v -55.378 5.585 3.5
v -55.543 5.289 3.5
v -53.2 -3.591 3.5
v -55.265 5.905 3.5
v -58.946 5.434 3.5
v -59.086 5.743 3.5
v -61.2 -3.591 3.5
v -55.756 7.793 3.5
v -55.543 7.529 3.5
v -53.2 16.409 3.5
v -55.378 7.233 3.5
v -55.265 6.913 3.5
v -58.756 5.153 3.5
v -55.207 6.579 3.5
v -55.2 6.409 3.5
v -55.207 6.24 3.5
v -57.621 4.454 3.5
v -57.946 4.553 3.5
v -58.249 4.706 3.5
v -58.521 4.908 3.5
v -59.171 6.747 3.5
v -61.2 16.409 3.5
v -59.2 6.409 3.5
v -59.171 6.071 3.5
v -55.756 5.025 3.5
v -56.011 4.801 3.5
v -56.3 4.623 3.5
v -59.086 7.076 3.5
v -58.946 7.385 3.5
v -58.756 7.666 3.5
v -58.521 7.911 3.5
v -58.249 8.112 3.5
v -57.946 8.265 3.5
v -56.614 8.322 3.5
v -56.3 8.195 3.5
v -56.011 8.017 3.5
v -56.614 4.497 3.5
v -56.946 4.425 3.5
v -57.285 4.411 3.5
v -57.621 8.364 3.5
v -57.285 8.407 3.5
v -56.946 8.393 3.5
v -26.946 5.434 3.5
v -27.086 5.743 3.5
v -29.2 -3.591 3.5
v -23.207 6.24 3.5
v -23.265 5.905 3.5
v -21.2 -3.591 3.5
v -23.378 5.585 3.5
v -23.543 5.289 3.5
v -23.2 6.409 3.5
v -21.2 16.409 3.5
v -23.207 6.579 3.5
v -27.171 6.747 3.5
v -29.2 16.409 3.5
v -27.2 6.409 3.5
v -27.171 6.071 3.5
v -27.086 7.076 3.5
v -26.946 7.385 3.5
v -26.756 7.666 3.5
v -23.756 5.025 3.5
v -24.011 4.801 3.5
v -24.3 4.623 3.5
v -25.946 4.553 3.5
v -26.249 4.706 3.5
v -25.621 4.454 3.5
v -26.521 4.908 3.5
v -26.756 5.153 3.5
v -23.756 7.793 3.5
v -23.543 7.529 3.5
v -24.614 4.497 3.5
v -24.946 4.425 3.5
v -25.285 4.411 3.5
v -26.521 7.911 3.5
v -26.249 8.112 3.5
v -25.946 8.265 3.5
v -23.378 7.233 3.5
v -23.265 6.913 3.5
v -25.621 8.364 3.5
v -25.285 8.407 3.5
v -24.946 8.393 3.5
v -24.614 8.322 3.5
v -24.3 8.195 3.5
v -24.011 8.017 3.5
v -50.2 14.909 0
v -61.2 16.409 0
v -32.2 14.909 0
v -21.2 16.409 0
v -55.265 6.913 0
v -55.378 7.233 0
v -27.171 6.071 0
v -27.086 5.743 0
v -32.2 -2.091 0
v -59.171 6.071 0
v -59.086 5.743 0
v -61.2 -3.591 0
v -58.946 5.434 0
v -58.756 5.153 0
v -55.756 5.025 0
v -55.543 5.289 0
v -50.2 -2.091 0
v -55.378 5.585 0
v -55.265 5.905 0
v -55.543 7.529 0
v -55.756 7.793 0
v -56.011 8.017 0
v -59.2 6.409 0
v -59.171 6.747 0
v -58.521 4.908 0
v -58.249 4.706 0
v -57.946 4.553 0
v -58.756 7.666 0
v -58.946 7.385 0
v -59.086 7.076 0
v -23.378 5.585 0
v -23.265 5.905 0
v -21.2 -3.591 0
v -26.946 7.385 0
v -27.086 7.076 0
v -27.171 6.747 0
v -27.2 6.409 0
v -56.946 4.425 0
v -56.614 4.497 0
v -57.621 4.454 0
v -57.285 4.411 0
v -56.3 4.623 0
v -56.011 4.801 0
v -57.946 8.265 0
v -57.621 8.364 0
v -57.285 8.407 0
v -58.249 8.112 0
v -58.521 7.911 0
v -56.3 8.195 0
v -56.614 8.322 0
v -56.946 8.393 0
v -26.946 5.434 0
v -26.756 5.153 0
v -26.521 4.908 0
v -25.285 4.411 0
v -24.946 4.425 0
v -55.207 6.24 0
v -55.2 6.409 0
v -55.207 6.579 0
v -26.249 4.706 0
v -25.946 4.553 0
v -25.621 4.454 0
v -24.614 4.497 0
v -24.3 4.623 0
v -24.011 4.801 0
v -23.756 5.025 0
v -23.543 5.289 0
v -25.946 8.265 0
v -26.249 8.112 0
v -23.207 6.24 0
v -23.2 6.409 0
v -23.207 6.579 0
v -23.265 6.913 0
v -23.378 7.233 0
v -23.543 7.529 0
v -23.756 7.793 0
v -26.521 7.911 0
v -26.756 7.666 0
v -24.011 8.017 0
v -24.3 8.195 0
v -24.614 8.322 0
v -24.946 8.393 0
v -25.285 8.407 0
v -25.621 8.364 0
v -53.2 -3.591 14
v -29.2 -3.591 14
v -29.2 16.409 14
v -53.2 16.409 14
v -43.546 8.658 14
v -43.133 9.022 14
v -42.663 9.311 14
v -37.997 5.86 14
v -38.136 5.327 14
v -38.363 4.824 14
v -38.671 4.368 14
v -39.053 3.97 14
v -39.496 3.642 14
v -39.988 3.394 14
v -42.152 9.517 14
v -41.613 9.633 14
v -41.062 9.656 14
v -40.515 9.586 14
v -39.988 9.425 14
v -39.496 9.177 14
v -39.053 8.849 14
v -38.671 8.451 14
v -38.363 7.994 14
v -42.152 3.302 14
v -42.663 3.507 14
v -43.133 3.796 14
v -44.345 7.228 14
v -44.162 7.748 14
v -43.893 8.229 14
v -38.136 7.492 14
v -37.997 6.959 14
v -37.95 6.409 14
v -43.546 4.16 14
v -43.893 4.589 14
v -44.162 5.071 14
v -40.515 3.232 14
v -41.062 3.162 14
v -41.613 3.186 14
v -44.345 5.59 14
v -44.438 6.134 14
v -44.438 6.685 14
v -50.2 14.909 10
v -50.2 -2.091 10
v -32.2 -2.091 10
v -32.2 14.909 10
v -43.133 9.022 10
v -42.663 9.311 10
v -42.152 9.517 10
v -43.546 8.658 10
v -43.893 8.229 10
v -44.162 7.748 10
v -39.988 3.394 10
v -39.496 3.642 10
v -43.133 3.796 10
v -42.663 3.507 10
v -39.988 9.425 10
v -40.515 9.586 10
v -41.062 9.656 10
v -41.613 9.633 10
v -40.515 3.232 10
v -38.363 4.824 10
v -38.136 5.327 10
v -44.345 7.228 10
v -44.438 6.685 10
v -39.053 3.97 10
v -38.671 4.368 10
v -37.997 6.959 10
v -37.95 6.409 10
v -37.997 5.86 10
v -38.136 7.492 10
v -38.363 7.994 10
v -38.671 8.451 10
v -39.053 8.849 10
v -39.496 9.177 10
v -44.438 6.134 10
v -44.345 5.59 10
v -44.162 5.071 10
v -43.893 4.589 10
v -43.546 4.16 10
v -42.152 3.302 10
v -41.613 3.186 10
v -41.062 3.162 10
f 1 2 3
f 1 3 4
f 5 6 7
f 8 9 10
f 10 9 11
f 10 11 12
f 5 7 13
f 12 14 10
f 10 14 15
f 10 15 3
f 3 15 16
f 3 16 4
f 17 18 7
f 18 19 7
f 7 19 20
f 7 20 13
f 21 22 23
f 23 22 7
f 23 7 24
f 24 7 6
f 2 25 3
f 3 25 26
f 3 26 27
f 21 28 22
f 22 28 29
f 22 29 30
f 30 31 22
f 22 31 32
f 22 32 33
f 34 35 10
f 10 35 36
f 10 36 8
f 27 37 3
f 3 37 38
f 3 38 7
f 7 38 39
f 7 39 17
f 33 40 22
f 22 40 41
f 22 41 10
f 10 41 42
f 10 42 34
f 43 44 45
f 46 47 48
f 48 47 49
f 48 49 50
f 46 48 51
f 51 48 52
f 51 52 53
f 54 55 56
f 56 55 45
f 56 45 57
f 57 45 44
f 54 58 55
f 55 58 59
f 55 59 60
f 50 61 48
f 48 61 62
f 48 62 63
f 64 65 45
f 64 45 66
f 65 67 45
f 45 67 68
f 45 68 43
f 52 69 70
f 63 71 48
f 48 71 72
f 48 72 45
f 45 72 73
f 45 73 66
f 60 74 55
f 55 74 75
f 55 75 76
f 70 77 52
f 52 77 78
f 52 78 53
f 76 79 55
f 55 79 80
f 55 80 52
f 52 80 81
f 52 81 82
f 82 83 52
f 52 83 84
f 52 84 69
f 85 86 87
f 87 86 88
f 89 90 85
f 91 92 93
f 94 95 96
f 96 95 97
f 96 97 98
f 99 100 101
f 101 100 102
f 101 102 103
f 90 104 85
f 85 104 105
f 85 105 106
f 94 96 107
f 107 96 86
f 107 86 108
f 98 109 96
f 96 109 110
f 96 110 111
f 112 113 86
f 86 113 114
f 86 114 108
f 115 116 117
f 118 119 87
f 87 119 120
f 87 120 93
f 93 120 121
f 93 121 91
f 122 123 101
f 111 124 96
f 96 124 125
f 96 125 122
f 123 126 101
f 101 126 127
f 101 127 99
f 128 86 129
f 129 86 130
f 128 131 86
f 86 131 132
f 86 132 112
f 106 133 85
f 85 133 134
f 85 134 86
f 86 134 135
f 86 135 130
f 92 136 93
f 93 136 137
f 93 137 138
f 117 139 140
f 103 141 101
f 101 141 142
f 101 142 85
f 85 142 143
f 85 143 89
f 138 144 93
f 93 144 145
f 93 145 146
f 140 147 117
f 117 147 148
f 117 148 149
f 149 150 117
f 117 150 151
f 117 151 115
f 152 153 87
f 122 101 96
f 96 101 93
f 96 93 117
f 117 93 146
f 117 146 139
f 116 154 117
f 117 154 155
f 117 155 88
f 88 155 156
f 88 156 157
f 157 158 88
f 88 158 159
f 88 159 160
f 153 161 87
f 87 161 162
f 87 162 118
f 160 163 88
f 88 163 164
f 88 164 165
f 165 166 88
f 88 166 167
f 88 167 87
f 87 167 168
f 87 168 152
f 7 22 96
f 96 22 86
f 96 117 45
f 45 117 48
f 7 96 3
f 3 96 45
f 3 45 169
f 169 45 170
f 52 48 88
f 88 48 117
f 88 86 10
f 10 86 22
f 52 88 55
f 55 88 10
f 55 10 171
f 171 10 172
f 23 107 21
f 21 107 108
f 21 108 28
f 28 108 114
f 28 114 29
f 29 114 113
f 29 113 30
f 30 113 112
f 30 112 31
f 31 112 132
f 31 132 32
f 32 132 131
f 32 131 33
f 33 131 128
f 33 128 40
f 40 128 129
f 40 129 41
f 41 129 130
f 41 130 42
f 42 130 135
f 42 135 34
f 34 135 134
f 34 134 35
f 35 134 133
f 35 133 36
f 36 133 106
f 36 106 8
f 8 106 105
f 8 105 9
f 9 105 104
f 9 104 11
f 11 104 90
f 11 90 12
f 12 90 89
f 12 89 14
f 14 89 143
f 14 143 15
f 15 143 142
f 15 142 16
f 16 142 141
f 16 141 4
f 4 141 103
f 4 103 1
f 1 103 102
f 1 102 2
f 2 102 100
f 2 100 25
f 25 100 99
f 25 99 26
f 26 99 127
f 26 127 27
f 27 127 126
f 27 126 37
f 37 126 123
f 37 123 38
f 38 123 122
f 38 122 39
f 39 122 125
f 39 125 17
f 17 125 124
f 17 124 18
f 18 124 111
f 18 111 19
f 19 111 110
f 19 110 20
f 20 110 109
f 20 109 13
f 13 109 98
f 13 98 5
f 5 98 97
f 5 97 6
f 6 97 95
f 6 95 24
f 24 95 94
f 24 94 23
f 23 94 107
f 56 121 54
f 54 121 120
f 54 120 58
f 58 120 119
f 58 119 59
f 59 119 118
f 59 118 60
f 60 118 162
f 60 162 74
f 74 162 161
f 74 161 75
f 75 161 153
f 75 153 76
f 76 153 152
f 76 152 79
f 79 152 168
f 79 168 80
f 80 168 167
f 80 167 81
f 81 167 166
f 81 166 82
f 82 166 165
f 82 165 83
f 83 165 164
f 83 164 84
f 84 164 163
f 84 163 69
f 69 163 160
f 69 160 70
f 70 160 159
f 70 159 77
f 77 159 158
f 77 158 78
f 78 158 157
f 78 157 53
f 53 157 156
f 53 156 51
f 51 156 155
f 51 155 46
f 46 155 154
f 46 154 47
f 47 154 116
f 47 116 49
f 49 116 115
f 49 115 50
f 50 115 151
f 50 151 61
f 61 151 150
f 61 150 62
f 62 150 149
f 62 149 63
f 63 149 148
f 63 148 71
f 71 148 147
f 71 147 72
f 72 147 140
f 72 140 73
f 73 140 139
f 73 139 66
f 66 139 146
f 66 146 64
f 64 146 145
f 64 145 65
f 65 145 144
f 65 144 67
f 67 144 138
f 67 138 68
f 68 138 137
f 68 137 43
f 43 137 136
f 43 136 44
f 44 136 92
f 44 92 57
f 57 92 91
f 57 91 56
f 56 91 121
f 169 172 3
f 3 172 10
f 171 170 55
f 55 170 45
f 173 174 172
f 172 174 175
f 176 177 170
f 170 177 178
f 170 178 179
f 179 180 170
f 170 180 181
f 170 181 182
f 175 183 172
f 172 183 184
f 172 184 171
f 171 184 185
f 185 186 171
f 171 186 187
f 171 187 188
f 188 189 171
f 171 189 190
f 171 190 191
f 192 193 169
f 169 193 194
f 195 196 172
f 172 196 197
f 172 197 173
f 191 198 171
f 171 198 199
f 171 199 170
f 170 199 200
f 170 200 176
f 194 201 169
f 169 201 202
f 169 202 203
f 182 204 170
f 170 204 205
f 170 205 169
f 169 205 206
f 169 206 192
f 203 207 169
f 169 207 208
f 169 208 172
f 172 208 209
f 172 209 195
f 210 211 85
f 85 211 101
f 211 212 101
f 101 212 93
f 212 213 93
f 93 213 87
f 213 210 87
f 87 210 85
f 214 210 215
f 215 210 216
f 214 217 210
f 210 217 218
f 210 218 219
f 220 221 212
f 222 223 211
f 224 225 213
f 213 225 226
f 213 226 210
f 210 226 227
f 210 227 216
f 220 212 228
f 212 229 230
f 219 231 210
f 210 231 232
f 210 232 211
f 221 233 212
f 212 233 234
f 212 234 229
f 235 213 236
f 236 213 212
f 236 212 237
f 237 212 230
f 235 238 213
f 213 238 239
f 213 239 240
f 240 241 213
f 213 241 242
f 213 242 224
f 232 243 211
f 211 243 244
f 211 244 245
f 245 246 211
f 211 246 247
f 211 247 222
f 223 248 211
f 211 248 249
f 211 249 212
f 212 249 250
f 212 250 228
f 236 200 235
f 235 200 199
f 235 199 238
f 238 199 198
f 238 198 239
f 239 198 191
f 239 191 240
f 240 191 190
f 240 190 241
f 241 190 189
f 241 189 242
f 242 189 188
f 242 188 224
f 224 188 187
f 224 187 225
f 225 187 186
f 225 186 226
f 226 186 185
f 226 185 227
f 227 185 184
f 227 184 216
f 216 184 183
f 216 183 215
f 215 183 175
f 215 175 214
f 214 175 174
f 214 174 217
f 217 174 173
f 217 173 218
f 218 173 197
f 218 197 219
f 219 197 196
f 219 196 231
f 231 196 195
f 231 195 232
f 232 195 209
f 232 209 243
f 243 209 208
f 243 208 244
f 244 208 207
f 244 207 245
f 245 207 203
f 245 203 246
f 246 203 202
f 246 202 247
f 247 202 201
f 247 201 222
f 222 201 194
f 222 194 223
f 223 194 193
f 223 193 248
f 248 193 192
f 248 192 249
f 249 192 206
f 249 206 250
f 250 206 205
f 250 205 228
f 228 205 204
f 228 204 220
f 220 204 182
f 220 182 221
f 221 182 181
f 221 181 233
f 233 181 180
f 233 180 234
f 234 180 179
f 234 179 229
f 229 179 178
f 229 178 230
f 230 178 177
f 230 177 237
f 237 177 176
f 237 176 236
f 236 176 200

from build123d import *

# Parameters (mm, degrees)
SKETCH2_W           = 40
SKETCH2_H           = 20
SKETCH2_R           = 2
BOSS_EXTRUDE1_DEPTH = 3.5
SKETCH3_W           = 24
SKETCH3_H           = 20
BOSS_EXTRUDE2_DEPTH = 10.5
SKETCH4_W           = 18
SKETCH4_H           = 17
CUT_EXTRUDE2_DEPTH  = 10
SKETCH5_R           = 3.25
CUT_EXTRUDE3_DEPTH  = 15


with BuildPart() as part:
    # Sketch2 → Boss-Extrude1 (new body)
    with BuildSketch(Plane.XY):
        with Locations((-41.200062639, 6.409268178)):
            Rectangle(SKETCH2_W, SKETCH2_H)
        with Locations((-57.200062639, 6.409268178)):
            Circle(SKETCH2_R, mode=Mode.SUBTRACT)
        with Locations((-25.200062639, 6.409268178)):
            Circle(SKETCH2_R, mode=Mode.SUBTRACT)
    extrude(amount=BOSS_EXTRUDE1_DEPTH)

    # Sketch3 → Boss-Extrude2 (add)
    with BuildSketch(Plane.XY.offset(3.5)):
        with Locations((-41.200062639, 6.409268178)):
            Rectangle(SKETCH3_W, SKETCH3_H)
    extrude(amount=BOSS_EXTRUDE2_DEPTH)

    # Sketch4 → Cut-Extrude2 (cut)
    with BuildSketch(Plane(origin=(0, 0, 0), x_dir=(-1, 0, 0), z_dir=(0, 0, -1))):
        with Locations((41.200062639, 6.409268178)):
            Rectangle(SKETCH4_W, SKETCH4_H)
    extrude(amount=-CUT_EXTRUDE2_DEPTH, mode=Mode.SUBTRACT)

    # Sketch5 → Cut-Extrude3 (cut, through all)
    with BuildSketch(Plane.XY.offset(14)):
        with Locations((-41.200062639, 6.409268178)):
            Circle(SKETCH5_R)
    extrude(amount=-CUT_EXTRUDE3_DEPTH, mode=Mode.SUBTRACT)


solid = part.part
